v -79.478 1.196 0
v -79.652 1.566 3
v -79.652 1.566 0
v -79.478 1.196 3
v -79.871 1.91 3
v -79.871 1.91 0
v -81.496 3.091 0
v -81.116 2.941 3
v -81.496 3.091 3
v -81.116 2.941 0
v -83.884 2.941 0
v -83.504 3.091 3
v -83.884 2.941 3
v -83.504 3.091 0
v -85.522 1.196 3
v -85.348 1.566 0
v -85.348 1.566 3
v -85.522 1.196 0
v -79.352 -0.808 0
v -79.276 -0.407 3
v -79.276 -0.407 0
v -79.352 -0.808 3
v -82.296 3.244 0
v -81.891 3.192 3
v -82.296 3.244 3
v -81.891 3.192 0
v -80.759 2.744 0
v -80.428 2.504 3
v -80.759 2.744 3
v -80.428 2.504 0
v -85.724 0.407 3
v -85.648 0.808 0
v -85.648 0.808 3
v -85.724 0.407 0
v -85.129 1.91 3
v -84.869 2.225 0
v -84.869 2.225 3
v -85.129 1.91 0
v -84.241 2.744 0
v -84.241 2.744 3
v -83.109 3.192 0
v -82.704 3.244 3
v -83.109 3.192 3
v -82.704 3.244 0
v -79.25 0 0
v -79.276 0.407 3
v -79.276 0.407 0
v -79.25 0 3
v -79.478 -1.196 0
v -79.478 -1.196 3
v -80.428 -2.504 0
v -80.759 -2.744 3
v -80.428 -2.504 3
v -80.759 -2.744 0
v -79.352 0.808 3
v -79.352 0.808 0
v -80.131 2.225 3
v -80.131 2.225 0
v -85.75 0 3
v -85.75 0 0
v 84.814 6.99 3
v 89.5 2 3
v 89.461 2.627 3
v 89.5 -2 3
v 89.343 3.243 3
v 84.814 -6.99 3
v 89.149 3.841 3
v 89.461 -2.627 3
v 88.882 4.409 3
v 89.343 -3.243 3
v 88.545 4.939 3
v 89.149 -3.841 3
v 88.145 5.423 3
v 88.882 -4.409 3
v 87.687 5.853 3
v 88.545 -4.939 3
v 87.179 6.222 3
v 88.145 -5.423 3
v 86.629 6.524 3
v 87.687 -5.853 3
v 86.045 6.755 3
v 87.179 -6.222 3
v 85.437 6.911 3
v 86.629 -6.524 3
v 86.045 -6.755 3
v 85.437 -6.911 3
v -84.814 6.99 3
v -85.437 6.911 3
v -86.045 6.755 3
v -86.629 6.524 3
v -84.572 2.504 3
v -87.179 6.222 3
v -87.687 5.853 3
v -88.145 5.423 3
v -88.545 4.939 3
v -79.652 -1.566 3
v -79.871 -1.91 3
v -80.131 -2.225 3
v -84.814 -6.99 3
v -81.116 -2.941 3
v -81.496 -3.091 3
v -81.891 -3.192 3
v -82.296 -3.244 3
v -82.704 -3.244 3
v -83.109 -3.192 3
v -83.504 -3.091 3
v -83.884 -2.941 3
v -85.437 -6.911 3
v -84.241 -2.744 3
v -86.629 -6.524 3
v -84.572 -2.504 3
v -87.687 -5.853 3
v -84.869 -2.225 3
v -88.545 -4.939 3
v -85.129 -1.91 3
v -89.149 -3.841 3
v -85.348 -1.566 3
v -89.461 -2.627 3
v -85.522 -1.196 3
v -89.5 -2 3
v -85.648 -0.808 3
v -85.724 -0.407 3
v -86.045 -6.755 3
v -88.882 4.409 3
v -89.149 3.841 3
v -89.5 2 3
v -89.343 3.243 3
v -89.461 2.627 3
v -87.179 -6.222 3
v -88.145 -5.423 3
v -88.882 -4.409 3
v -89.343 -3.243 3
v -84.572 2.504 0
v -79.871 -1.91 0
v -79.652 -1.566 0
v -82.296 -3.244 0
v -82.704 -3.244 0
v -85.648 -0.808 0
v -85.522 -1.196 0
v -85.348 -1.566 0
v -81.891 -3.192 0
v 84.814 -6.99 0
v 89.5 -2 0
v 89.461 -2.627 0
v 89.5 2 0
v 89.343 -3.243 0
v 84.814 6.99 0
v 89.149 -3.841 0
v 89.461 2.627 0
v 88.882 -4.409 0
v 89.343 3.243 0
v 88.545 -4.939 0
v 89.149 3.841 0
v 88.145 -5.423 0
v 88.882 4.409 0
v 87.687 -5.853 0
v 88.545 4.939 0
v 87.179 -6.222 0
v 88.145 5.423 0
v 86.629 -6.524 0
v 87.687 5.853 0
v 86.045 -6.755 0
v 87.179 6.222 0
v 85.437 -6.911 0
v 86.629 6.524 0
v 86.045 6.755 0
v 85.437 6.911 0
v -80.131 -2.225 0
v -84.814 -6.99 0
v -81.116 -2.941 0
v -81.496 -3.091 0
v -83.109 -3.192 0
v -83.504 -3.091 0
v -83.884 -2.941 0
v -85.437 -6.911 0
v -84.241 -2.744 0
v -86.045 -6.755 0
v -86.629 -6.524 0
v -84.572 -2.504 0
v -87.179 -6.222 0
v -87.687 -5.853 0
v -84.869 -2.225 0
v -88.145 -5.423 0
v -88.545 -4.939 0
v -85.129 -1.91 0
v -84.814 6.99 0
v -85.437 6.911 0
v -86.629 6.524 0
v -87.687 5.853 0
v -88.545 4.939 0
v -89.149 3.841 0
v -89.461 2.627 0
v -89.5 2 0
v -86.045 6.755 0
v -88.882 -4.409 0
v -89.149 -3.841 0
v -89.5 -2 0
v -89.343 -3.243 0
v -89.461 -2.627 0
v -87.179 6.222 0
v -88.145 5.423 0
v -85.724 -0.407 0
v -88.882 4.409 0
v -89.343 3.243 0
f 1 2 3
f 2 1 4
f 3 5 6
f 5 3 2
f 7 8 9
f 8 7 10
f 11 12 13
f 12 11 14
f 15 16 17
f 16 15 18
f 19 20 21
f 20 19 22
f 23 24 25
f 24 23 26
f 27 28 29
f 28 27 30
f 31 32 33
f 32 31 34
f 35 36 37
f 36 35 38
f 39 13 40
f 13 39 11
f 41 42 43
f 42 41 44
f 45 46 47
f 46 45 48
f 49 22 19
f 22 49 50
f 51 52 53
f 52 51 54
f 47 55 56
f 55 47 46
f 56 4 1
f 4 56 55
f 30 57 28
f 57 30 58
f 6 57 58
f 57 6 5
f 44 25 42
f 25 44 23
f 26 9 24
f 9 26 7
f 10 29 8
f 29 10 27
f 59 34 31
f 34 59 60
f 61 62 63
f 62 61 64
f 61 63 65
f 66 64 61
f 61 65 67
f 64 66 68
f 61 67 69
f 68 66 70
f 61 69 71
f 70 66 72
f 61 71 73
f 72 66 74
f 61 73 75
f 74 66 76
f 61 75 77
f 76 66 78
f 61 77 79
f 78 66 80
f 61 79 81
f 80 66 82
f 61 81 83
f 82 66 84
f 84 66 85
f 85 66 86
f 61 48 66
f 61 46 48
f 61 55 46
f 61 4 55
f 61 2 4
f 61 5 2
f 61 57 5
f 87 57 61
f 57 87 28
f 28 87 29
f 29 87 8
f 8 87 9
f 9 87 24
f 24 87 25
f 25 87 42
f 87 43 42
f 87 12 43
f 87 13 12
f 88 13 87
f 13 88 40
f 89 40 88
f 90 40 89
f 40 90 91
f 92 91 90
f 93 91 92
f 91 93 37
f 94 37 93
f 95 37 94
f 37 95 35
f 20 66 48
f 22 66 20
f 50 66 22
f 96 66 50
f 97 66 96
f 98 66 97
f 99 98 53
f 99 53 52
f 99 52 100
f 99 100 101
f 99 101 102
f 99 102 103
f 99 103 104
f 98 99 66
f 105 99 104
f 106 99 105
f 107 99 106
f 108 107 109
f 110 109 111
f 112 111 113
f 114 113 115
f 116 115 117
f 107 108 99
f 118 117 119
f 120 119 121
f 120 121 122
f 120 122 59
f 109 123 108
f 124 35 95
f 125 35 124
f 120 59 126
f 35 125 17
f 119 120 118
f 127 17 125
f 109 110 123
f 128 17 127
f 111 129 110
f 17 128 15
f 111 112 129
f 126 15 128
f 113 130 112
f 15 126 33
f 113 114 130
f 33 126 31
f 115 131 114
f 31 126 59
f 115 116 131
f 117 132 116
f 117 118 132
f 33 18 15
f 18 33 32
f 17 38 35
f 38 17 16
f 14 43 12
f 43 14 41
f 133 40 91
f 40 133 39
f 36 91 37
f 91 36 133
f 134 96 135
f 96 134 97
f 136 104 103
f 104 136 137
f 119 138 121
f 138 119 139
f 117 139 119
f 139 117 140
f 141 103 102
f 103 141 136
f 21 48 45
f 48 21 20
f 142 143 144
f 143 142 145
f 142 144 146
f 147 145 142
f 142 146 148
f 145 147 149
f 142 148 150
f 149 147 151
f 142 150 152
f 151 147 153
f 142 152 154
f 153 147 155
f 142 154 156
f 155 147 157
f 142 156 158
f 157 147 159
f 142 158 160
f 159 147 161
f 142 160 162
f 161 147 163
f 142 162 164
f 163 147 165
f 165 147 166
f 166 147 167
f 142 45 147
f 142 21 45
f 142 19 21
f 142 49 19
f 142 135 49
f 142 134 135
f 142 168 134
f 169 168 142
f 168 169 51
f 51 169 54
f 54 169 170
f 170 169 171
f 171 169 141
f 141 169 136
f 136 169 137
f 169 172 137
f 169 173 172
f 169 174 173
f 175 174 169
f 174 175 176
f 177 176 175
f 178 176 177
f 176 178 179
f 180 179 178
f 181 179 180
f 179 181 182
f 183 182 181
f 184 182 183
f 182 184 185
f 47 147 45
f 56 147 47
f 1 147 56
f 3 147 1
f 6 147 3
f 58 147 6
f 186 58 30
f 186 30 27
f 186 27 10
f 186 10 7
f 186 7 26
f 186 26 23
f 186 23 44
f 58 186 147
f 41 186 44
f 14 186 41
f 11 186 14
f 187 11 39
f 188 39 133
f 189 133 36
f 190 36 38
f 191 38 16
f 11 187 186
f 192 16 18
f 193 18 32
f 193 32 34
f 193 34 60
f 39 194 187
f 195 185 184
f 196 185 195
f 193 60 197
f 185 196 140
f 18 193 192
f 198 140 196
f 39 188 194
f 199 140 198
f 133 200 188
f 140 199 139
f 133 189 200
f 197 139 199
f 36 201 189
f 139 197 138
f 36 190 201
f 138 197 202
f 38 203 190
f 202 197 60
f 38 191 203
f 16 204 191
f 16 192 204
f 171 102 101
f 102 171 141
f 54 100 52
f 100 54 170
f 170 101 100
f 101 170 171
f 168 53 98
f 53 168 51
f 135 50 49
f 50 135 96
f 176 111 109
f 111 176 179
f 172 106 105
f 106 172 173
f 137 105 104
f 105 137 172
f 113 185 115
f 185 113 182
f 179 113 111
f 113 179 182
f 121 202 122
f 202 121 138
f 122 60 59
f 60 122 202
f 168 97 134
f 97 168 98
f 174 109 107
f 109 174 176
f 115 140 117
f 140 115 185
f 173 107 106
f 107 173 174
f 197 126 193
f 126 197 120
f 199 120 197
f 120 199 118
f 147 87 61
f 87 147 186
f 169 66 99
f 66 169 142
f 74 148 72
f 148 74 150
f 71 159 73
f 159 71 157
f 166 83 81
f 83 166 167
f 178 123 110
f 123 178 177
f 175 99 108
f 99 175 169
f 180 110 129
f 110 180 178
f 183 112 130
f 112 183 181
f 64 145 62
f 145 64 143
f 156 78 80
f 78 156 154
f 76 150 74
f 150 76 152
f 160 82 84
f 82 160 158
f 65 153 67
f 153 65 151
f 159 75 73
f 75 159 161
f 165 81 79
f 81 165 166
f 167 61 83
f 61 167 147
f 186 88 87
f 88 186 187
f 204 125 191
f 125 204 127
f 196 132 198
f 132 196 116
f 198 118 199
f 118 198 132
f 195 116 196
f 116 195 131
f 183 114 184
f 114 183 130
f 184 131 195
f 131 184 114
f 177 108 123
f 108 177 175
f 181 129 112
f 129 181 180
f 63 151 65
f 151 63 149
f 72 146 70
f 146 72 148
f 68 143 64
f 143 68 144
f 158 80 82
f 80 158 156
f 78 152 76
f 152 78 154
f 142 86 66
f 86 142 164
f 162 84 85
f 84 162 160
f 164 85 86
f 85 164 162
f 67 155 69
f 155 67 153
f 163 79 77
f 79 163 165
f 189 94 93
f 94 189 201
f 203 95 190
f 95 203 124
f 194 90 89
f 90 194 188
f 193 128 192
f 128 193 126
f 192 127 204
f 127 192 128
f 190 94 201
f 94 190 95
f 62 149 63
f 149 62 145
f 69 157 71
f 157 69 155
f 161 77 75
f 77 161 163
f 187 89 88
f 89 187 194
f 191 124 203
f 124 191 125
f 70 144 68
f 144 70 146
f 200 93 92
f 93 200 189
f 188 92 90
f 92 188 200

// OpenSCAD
$fn = 50;


difference() {
	union() {
		hull() {
			translate(v = [-84.5000000000, 2.0000000000, 0]) {
				cylinder(h = 3, r = 5);
			}
			translate(v = [84.5000000000, 2.0000000000, 0]) {
				cylinder(h = 3, r = 5);
			}
			translate(v = [-84.5000000000, -2.0000000000, 0]) {
				cylinder(h = 3, r = 5);
			}
			translate(v = [84.5000000000, -2.0000000000, 0]) {
				cylinder(h = 3, r = 5);
			}
		}
	}
	union() {
		translate(v = [-82.5000000000, 0.0000000000, 0]) {
			cylinder(h = 3, r = 3.2500000000);
		}
		translate(v = [-82.5000000000, 0.0000000000, 0]) {
			cylinder(h = 3, r = 1.8000000000);
		}
		translate(v = [-82.5000000000, 0.0000000000, 0]) {
			cylinder(h = 3, r = 1.8000000000);
		}
		translate(v = [-82.5000000000, 0.0000000000, 0]) {
			cylinder(h = 3, r = 1.8000000000);
		}
	}
}
